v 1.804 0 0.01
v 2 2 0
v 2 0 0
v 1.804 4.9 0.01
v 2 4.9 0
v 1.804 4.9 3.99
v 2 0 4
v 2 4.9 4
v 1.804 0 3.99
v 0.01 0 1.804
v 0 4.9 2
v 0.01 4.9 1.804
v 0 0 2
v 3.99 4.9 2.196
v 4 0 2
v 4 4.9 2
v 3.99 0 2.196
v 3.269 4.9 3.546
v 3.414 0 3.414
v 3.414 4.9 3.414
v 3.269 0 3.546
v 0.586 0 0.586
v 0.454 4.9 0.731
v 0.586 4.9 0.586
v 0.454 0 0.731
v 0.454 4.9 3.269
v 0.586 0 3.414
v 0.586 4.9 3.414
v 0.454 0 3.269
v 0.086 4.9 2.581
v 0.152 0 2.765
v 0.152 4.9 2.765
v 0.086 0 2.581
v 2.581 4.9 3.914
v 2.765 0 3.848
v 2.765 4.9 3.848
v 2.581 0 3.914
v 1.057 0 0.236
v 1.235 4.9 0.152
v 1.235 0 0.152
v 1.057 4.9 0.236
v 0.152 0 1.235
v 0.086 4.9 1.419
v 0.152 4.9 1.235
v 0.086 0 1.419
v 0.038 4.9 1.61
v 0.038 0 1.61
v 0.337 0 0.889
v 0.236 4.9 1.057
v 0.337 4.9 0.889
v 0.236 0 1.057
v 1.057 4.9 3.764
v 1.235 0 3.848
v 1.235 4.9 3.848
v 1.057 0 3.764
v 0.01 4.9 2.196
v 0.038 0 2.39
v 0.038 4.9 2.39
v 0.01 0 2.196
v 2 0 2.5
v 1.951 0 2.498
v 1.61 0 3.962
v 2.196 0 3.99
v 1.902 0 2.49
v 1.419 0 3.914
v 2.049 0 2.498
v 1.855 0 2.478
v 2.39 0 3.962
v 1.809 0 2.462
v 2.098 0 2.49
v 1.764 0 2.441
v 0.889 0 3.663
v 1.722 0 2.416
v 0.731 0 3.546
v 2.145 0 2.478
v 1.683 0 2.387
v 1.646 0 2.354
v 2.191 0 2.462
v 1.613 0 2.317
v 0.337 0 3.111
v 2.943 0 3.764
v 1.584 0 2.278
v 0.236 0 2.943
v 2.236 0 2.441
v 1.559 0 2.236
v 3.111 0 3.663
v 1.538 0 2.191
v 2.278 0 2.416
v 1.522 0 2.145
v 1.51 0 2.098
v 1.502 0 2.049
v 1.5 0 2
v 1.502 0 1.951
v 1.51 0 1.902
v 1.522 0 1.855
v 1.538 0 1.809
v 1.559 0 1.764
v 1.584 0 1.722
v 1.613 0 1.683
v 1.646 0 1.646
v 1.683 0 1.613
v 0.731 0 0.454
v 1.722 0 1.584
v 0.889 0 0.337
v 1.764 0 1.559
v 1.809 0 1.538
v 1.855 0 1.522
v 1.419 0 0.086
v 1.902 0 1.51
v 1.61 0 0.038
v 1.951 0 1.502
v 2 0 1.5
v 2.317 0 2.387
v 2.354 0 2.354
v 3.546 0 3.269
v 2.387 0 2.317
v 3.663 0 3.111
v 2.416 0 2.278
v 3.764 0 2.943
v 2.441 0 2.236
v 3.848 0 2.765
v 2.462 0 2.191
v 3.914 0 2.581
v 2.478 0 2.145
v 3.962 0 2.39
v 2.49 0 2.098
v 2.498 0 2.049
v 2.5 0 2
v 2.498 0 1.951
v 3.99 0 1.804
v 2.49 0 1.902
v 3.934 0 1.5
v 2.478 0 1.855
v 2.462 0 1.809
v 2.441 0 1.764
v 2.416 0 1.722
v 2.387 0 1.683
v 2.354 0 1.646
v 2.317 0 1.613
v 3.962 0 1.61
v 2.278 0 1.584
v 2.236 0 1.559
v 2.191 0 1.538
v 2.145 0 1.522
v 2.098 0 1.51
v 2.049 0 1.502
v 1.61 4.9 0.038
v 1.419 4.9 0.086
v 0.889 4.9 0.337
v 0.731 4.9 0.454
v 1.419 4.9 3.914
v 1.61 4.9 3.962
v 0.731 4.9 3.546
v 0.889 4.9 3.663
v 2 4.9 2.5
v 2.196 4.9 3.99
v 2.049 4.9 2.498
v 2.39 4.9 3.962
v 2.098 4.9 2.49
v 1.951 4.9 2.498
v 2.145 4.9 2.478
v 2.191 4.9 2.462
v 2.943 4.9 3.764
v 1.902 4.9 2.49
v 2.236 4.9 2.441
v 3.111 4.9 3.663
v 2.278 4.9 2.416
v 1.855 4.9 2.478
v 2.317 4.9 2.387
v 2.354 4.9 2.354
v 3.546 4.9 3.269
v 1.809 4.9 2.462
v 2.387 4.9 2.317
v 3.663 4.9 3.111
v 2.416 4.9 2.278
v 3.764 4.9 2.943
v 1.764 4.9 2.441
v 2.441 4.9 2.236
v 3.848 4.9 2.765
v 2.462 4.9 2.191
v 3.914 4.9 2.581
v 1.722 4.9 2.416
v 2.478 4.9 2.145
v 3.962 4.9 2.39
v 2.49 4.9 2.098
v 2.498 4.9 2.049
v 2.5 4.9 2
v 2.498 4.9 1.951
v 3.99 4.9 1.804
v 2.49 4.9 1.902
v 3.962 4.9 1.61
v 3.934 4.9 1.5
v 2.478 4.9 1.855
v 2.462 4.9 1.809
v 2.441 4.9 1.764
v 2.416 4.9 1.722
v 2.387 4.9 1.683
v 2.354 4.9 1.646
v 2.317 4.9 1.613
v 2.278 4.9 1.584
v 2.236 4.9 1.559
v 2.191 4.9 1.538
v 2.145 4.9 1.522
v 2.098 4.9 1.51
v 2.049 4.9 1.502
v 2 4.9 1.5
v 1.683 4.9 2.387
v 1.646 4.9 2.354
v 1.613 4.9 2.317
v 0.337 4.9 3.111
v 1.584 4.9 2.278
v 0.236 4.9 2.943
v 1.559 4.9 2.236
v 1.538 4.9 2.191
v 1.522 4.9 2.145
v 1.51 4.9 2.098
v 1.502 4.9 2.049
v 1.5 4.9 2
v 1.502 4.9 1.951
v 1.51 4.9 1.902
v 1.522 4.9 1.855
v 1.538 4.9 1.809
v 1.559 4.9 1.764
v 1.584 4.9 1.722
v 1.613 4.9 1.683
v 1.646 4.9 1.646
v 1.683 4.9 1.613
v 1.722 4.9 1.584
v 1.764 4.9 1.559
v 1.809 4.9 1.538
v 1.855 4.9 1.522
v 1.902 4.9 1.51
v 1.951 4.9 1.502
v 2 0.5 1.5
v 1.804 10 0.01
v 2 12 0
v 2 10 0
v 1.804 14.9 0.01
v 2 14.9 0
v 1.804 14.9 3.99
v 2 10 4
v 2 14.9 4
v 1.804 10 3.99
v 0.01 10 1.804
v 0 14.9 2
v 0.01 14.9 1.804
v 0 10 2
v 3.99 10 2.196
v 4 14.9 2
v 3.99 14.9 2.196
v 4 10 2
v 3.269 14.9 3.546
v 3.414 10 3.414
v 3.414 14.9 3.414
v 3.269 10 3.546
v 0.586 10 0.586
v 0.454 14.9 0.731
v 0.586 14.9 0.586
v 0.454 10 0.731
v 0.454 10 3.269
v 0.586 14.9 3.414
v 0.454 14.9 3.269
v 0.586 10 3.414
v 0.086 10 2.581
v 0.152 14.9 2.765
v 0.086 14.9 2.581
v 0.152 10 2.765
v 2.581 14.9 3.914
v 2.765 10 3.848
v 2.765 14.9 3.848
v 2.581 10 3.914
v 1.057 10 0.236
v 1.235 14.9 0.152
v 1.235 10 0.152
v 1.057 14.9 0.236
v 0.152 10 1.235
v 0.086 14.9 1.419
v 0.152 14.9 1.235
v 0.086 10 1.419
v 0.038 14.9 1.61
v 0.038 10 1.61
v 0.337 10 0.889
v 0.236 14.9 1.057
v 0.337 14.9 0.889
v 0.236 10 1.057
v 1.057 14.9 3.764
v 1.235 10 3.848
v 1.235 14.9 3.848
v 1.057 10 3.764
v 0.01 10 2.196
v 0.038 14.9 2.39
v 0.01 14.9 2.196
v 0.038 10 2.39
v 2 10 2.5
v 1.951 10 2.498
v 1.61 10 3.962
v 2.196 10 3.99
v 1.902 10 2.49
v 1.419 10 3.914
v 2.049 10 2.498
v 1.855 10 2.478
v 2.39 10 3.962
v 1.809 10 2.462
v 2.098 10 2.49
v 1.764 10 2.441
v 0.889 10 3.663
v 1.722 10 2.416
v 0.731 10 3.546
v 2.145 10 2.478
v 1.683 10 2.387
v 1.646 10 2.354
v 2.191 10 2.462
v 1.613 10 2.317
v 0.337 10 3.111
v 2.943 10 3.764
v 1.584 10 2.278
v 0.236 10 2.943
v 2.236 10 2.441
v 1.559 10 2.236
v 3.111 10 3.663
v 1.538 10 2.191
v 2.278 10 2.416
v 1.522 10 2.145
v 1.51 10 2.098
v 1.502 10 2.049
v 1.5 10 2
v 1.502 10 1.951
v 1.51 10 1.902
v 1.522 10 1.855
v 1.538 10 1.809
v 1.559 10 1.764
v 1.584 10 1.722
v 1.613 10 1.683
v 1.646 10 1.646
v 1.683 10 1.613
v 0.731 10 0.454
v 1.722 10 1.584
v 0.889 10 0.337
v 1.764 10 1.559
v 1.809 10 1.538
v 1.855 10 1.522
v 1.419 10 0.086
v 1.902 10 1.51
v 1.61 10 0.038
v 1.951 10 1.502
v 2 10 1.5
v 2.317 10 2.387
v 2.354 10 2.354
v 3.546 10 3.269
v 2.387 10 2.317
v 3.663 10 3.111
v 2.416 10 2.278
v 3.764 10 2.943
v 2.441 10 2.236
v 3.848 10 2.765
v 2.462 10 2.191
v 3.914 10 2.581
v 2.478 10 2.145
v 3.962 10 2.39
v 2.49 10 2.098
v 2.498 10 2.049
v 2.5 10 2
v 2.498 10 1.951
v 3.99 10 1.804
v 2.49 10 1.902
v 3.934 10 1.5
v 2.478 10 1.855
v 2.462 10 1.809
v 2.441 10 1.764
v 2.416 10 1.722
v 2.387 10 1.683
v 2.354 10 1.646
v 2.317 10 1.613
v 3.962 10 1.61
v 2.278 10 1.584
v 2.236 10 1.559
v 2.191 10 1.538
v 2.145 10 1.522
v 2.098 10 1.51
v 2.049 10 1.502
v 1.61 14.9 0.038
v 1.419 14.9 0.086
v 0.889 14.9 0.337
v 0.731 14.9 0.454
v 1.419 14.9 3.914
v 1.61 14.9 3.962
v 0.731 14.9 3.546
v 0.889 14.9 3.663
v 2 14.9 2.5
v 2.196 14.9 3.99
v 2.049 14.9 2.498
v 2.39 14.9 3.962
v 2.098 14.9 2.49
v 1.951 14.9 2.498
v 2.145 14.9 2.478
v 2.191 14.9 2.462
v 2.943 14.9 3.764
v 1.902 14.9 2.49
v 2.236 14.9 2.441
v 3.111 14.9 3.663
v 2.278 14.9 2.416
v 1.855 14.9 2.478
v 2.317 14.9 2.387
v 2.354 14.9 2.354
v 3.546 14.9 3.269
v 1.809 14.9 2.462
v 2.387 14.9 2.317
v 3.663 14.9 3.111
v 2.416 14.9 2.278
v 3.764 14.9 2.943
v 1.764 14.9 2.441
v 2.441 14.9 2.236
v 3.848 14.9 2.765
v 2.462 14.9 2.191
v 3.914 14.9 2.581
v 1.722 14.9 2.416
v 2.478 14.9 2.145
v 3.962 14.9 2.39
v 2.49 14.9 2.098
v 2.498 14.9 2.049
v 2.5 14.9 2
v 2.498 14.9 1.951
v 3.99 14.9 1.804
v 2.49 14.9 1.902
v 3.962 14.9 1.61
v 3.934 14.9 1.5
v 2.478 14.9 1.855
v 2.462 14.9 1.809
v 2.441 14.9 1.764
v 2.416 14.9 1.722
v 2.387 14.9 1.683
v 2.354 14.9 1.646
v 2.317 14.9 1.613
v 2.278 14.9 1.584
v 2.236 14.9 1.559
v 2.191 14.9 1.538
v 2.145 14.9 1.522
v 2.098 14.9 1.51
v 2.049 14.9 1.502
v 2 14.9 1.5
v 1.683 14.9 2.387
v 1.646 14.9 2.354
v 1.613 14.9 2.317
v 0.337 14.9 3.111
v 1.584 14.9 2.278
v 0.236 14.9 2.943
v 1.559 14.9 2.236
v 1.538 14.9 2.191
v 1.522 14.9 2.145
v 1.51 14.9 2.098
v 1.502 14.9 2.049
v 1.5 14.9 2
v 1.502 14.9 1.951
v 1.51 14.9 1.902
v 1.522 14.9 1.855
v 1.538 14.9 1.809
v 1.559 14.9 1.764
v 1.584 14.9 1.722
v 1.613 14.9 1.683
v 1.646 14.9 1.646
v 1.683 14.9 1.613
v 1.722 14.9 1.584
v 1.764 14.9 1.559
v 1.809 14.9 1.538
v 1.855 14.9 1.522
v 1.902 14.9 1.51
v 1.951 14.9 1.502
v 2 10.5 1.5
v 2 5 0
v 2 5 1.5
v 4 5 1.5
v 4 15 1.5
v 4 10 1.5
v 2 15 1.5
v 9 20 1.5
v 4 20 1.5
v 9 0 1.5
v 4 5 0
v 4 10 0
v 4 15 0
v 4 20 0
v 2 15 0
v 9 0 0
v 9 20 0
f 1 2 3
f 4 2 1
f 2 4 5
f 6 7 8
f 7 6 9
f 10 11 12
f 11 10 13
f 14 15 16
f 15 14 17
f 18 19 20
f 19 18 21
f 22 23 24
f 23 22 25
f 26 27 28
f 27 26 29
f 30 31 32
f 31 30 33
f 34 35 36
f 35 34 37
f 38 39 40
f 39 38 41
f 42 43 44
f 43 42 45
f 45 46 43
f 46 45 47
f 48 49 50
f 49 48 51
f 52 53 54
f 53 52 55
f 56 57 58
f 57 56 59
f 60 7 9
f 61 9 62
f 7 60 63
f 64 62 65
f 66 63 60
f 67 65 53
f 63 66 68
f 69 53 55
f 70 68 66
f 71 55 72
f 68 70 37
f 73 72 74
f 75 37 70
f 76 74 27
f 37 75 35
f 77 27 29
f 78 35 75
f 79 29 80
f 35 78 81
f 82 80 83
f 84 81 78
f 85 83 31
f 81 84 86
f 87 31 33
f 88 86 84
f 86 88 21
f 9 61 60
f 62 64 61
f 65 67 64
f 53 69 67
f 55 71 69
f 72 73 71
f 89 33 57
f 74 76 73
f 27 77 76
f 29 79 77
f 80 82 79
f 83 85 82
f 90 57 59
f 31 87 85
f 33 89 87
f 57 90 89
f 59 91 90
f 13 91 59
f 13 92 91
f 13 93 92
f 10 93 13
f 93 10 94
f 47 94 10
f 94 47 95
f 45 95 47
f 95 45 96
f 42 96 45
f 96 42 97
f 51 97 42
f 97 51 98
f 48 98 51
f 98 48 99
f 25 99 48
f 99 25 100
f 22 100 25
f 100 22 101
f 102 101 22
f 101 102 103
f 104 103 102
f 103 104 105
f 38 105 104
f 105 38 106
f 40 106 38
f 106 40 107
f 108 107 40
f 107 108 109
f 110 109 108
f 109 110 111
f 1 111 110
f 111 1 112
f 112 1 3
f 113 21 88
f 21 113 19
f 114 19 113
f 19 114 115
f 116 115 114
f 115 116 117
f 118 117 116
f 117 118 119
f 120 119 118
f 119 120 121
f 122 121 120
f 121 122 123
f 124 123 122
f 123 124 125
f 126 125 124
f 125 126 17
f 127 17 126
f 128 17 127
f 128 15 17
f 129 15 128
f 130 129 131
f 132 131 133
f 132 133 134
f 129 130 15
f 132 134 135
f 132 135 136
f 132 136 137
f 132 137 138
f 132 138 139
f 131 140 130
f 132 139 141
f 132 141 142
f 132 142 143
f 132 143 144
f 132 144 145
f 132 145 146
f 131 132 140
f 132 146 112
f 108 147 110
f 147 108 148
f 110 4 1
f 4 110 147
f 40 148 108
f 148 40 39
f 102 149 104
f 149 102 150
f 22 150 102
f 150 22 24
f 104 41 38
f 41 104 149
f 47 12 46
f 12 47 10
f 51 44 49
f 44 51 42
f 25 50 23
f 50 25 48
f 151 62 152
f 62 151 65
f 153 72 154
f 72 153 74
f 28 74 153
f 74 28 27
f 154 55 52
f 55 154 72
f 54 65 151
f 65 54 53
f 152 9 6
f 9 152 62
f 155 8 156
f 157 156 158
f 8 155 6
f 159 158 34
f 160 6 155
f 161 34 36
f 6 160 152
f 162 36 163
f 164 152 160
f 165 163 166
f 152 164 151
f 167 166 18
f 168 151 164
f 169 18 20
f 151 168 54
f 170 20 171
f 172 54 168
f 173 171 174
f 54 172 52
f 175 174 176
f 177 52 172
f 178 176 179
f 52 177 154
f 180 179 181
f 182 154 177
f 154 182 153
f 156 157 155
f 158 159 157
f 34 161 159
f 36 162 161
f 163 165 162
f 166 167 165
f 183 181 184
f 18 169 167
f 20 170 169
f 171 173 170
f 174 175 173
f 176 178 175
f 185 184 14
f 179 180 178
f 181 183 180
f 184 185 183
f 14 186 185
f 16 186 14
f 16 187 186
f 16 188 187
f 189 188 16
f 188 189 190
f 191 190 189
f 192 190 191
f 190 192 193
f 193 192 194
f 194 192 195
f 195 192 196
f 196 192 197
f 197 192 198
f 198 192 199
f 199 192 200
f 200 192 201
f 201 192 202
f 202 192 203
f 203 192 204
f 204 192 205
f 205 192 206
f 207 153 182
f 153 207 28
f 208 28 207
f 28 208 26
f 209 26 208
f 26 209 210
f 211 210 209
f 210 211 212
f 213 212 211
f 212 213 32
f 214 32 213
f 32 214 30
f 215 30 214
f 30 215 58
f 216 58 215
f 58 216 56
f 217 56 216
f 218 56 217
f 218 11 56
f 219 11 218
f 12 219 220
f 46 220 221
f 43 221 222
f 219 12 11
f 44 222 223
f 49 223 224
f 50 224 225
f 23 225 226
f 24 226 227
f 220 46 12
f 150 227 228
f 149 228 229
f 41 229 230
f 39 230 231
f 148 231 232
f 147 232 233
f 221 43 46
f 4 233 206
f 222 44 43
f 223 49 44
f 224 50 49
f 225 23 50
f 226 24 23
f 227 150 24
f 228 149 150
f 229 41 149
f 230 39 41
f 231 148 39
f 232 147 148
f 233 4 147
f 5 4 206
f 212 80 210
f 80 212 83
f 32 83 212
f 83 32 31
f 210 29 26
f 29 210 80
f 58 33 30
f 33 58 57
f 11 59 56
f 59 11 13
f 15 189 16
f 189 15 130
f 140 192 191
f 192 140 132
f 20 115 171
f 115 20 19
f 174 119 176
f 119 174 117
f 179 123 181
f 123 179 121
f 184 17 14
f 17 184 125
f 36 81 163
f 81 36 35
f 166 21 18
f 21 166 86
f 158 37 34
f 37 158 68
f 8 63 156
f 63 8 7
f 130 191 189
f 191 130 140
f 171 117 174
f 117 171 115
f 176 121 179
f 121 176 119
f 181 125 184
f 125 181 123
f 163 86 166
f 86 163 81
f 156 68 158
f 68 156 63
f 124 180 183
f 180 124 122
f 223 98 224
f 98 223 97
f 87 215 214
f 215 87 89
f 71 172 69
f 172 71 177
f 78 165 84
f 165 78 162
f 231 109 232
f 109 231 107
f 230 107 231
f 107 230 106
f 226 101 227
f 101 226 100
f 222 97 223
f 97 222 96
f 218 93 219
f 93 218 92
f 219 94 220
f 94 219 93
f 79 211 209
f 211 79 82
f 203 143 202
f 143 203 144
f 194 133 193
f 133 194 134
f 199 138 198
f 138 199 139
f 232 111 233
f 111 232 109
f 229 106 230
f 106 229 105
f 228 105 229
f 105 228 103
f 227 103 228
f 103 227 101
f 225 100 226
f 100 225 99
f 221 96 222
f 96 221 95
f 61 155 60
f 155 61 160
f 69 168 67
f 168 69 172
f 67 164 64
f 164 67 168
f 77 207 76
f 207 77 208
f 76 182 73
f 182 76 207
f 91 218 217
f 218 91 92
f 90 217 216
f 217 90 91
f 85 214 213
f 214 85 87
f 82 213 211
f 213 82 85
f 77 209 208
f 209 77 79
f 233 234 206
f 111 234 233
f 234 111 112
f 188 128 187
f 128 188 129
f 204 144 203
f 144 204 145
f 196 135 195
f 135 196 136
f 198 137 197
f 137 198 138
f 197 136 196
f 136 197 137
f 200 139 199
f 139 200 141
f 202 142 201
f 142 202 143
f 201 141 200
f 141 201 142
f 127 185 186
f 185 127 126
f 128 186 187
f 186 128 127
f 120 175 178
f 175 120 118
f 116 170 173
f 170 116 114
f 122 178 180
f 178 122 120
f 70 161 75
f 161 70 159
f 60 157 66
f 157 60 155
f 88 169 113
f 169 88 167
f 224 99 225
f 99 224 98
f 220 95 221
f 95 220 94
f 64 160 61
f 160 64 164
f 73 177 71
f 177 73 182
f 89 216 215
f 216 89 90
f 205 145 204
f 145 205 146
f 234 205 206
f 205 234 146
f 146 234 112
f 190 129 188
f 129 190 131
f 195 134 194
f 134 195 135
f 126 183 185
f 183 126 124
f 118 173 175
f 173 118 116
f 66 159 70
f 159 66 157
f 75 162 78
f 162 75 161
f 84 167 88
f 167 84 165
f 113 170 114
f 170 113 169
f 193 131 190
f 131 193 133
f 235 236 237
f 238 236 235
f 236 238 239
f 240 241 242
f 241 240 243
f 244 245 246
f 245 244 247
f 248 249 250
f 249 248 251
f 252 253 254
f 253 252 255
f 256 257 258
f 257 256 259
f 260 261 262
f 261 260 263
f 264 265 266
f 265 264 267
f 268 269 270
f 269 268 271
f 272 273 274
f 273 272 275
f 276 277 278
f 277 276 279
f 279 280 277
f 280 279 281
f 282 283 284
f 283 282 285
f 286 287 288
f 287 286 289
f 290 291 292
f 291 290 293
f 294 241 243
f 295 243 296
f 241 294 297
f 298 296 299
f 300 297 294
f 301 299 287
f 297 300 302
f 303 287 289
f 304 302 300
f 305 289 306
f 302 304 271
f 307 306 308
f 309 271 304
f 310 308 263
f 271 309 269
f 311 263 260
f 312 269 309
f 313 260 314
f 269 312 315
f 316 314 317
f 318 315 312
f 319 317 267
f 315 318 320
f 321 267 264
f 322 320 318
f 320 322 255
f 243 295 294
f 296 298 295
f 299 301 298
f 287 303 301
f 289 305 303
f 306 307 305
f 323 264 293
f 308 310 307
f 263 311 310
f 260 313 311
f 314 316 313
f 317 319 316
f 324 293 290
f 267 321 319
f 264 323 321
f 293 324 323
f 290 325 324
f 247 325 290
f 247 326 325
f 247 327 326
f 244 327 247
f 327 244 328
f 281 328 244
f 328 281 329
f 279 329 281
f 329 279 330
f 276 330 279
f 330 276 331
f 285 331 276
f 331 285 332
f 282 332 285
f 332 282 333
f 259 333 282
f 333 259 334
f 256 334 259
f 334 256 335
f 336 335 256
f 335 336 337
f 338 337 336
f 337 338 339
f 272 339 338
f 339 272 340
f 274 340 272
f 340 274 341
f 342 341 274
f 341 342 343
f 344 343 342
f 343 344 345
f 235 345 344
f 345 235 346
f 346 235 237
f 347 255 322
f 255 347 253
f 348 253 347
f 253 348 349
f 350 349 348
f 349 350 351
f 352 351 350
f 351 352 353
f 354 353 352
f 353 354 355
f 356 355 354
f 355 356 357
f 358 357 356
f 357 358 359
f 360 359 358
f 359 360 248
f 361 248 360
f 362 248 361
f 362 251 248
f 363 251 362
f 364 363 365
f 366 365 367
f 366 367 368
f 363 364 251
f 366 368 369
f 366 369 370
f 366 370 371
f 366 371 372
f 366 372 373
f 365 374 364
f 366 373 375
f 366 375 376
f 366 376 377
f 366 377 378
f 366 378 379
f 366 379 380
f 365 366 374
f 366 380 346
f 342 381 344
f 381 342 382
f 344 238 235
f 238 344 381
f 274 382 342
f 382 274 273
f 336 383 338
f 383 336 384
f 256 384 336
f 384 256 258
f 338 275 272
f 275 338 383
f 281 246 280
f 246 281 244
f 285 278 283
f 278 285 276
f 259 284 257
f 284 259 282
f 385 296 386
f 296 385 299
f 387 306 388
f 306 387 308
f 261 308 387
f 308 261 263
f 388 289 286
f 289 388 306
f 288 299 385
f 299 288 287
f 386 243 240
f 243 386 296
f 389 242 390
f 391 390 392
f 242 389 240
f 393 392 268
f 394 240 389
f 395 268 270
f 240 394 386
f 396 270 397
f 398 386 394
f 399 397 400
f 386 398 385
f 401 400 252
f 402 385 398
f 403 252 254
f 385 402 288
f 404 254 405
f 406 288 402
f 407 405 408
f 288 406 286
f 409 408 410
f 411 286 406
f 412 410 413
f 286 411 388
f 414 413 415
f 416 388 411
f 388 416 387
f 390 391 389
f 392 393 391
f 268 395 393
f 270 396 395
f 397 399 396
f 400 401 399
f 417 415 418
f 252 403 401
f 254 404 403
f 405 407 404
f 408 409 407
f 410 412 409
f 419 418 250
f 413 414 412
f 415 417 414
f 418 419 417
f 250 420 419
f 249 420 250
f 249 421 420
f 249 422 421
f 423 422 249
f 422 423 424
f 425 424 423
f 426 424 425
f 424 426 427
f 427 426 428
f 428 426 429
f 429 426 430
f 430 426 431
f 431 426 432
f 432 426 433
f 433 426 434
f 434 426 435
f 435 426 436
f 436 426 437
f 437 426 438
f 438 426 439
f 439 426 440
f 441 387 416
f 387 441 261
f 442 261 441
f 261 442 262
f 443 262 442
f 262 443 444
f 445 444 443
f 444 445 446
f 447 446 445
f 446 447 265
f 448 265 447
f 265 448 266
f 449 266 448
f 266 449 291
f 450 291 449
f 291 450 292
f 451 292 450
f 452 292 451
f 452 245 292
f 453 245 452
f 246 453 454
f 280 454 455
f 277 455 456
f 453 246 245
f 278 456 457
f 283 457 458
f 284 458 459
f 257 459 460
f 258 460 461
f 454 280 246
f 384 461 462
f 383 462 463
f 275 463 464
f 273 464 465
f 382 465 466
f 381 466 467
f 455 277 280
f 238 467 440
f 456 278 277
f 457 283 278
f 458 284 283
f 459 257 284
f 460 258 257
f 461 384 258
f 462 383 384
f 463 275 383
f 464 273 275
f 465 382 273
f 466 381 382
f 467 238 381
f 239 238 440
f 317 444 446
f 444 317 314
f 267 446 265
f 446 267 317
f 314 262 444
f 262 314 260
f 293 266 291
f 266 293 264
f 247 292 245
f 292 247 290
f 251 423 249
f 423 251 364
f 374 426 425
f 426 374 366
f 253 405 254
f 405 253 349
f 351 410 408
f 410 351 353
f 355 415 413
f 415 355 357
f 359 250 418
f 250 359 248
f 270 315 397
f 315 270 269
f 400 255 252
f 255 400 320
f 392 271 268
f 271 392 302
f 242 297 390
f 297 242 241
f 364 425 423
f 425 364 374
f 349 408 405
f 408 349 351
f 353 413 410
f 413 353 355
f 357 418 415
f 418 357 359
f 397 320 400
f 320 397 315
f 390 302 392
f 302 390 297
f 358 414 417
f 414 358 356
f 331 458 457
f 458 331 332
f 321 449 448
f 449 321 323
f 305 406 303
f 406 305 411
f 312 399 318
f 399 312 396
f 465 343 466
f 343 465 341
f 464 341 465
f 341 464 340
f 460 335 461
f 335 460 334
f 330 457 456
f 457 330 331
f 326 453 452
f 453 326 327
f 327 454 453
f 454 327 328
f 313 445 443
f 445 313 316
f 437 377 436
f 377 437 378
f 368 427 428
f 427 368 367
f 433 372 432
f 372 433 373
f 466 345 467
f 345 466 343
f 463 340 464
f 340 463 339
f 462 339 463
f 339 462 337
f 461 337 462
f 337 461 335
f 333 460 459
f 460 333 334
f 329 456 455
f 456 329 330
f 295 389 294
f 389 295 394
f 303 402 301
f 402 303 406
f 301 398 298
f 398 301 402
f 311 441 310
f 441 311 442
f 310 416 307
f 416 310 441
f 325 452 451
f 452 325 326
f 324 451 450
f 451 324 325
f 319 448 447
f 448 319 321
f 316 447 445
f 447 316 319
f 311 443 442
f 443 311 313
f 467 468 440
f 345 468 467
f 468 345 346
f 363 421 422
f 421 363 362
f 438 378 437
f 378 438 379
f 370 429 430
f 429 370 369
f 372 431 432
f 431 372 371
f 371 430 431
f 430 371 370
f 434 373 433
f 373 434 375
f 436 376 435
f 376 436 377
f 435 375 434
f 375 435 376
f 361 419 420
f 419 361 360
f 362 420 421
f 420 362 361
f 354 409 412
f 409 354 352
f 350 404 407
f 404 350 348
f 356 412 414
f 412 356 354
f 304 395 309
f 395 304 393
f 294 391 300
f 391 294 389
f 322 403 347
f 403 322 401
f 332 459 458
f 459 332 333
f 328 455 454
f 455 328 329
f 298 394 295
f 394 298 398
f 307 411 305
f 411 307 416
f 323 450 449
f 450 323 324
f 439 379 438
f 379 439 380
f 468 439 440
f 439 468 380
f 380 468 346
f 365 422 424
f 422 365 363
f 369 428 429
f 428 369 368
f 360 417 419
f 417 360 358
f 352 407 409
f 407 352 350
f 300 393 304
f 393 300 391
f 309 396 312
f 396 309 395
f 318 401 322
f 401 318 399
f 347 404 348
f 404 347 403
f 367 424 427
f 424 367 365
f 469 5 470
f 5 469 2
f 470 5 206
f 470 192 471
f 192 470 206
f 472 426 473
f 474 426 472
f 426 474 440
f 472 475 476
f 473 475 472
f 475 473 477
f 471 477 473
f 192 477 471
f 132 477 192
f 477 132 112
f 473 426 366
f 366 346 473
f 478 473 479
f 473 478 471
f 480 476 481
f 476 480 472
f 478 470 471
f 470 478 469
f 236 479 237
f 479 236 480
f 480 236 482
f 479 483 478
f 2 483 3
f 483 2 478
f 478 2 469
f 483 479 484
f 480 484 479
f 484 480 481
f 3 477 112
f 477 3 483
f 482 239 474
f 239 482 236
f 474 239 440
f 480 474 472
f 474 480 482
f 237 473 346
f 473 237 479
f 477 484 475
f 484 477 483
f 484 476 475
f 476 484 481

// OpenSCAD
// implement a tube for the hing pin to go through
module tube(opening, height, thickness) {
    translate([opening/2+thickness,0, opening/2+thickness]) {
        rotate([270,90,0]) difference() {
            cylinder(r=opening/2+thickness, h=height, $fn=64);
            translate([0,0,-0.5]) cylinder(r=opening/2, h=height+1, $fn=64);
        }
    }
}

// Put tubes together on a support structure for the hinge.  Should be reversible so two can go together to make a complete hinge.
module hinge(hinges = 2, opening = 1) {
    thickness = 1.5;
    h = 5;
    d = opening + thickness * 2;
    translate([d,0,0]) cube([5, h*hinges*2, thickness]);
    for (i = [0:hinges-1]) {
        translate([opening/2+thickness, h*i*2, 0])
            cube([thickness+opening/2, h, thickness]);
        translate([0, h*i*2, 0]) tube(opening, h-0.1, thickness);
    }
}

hinge(2, 1);
